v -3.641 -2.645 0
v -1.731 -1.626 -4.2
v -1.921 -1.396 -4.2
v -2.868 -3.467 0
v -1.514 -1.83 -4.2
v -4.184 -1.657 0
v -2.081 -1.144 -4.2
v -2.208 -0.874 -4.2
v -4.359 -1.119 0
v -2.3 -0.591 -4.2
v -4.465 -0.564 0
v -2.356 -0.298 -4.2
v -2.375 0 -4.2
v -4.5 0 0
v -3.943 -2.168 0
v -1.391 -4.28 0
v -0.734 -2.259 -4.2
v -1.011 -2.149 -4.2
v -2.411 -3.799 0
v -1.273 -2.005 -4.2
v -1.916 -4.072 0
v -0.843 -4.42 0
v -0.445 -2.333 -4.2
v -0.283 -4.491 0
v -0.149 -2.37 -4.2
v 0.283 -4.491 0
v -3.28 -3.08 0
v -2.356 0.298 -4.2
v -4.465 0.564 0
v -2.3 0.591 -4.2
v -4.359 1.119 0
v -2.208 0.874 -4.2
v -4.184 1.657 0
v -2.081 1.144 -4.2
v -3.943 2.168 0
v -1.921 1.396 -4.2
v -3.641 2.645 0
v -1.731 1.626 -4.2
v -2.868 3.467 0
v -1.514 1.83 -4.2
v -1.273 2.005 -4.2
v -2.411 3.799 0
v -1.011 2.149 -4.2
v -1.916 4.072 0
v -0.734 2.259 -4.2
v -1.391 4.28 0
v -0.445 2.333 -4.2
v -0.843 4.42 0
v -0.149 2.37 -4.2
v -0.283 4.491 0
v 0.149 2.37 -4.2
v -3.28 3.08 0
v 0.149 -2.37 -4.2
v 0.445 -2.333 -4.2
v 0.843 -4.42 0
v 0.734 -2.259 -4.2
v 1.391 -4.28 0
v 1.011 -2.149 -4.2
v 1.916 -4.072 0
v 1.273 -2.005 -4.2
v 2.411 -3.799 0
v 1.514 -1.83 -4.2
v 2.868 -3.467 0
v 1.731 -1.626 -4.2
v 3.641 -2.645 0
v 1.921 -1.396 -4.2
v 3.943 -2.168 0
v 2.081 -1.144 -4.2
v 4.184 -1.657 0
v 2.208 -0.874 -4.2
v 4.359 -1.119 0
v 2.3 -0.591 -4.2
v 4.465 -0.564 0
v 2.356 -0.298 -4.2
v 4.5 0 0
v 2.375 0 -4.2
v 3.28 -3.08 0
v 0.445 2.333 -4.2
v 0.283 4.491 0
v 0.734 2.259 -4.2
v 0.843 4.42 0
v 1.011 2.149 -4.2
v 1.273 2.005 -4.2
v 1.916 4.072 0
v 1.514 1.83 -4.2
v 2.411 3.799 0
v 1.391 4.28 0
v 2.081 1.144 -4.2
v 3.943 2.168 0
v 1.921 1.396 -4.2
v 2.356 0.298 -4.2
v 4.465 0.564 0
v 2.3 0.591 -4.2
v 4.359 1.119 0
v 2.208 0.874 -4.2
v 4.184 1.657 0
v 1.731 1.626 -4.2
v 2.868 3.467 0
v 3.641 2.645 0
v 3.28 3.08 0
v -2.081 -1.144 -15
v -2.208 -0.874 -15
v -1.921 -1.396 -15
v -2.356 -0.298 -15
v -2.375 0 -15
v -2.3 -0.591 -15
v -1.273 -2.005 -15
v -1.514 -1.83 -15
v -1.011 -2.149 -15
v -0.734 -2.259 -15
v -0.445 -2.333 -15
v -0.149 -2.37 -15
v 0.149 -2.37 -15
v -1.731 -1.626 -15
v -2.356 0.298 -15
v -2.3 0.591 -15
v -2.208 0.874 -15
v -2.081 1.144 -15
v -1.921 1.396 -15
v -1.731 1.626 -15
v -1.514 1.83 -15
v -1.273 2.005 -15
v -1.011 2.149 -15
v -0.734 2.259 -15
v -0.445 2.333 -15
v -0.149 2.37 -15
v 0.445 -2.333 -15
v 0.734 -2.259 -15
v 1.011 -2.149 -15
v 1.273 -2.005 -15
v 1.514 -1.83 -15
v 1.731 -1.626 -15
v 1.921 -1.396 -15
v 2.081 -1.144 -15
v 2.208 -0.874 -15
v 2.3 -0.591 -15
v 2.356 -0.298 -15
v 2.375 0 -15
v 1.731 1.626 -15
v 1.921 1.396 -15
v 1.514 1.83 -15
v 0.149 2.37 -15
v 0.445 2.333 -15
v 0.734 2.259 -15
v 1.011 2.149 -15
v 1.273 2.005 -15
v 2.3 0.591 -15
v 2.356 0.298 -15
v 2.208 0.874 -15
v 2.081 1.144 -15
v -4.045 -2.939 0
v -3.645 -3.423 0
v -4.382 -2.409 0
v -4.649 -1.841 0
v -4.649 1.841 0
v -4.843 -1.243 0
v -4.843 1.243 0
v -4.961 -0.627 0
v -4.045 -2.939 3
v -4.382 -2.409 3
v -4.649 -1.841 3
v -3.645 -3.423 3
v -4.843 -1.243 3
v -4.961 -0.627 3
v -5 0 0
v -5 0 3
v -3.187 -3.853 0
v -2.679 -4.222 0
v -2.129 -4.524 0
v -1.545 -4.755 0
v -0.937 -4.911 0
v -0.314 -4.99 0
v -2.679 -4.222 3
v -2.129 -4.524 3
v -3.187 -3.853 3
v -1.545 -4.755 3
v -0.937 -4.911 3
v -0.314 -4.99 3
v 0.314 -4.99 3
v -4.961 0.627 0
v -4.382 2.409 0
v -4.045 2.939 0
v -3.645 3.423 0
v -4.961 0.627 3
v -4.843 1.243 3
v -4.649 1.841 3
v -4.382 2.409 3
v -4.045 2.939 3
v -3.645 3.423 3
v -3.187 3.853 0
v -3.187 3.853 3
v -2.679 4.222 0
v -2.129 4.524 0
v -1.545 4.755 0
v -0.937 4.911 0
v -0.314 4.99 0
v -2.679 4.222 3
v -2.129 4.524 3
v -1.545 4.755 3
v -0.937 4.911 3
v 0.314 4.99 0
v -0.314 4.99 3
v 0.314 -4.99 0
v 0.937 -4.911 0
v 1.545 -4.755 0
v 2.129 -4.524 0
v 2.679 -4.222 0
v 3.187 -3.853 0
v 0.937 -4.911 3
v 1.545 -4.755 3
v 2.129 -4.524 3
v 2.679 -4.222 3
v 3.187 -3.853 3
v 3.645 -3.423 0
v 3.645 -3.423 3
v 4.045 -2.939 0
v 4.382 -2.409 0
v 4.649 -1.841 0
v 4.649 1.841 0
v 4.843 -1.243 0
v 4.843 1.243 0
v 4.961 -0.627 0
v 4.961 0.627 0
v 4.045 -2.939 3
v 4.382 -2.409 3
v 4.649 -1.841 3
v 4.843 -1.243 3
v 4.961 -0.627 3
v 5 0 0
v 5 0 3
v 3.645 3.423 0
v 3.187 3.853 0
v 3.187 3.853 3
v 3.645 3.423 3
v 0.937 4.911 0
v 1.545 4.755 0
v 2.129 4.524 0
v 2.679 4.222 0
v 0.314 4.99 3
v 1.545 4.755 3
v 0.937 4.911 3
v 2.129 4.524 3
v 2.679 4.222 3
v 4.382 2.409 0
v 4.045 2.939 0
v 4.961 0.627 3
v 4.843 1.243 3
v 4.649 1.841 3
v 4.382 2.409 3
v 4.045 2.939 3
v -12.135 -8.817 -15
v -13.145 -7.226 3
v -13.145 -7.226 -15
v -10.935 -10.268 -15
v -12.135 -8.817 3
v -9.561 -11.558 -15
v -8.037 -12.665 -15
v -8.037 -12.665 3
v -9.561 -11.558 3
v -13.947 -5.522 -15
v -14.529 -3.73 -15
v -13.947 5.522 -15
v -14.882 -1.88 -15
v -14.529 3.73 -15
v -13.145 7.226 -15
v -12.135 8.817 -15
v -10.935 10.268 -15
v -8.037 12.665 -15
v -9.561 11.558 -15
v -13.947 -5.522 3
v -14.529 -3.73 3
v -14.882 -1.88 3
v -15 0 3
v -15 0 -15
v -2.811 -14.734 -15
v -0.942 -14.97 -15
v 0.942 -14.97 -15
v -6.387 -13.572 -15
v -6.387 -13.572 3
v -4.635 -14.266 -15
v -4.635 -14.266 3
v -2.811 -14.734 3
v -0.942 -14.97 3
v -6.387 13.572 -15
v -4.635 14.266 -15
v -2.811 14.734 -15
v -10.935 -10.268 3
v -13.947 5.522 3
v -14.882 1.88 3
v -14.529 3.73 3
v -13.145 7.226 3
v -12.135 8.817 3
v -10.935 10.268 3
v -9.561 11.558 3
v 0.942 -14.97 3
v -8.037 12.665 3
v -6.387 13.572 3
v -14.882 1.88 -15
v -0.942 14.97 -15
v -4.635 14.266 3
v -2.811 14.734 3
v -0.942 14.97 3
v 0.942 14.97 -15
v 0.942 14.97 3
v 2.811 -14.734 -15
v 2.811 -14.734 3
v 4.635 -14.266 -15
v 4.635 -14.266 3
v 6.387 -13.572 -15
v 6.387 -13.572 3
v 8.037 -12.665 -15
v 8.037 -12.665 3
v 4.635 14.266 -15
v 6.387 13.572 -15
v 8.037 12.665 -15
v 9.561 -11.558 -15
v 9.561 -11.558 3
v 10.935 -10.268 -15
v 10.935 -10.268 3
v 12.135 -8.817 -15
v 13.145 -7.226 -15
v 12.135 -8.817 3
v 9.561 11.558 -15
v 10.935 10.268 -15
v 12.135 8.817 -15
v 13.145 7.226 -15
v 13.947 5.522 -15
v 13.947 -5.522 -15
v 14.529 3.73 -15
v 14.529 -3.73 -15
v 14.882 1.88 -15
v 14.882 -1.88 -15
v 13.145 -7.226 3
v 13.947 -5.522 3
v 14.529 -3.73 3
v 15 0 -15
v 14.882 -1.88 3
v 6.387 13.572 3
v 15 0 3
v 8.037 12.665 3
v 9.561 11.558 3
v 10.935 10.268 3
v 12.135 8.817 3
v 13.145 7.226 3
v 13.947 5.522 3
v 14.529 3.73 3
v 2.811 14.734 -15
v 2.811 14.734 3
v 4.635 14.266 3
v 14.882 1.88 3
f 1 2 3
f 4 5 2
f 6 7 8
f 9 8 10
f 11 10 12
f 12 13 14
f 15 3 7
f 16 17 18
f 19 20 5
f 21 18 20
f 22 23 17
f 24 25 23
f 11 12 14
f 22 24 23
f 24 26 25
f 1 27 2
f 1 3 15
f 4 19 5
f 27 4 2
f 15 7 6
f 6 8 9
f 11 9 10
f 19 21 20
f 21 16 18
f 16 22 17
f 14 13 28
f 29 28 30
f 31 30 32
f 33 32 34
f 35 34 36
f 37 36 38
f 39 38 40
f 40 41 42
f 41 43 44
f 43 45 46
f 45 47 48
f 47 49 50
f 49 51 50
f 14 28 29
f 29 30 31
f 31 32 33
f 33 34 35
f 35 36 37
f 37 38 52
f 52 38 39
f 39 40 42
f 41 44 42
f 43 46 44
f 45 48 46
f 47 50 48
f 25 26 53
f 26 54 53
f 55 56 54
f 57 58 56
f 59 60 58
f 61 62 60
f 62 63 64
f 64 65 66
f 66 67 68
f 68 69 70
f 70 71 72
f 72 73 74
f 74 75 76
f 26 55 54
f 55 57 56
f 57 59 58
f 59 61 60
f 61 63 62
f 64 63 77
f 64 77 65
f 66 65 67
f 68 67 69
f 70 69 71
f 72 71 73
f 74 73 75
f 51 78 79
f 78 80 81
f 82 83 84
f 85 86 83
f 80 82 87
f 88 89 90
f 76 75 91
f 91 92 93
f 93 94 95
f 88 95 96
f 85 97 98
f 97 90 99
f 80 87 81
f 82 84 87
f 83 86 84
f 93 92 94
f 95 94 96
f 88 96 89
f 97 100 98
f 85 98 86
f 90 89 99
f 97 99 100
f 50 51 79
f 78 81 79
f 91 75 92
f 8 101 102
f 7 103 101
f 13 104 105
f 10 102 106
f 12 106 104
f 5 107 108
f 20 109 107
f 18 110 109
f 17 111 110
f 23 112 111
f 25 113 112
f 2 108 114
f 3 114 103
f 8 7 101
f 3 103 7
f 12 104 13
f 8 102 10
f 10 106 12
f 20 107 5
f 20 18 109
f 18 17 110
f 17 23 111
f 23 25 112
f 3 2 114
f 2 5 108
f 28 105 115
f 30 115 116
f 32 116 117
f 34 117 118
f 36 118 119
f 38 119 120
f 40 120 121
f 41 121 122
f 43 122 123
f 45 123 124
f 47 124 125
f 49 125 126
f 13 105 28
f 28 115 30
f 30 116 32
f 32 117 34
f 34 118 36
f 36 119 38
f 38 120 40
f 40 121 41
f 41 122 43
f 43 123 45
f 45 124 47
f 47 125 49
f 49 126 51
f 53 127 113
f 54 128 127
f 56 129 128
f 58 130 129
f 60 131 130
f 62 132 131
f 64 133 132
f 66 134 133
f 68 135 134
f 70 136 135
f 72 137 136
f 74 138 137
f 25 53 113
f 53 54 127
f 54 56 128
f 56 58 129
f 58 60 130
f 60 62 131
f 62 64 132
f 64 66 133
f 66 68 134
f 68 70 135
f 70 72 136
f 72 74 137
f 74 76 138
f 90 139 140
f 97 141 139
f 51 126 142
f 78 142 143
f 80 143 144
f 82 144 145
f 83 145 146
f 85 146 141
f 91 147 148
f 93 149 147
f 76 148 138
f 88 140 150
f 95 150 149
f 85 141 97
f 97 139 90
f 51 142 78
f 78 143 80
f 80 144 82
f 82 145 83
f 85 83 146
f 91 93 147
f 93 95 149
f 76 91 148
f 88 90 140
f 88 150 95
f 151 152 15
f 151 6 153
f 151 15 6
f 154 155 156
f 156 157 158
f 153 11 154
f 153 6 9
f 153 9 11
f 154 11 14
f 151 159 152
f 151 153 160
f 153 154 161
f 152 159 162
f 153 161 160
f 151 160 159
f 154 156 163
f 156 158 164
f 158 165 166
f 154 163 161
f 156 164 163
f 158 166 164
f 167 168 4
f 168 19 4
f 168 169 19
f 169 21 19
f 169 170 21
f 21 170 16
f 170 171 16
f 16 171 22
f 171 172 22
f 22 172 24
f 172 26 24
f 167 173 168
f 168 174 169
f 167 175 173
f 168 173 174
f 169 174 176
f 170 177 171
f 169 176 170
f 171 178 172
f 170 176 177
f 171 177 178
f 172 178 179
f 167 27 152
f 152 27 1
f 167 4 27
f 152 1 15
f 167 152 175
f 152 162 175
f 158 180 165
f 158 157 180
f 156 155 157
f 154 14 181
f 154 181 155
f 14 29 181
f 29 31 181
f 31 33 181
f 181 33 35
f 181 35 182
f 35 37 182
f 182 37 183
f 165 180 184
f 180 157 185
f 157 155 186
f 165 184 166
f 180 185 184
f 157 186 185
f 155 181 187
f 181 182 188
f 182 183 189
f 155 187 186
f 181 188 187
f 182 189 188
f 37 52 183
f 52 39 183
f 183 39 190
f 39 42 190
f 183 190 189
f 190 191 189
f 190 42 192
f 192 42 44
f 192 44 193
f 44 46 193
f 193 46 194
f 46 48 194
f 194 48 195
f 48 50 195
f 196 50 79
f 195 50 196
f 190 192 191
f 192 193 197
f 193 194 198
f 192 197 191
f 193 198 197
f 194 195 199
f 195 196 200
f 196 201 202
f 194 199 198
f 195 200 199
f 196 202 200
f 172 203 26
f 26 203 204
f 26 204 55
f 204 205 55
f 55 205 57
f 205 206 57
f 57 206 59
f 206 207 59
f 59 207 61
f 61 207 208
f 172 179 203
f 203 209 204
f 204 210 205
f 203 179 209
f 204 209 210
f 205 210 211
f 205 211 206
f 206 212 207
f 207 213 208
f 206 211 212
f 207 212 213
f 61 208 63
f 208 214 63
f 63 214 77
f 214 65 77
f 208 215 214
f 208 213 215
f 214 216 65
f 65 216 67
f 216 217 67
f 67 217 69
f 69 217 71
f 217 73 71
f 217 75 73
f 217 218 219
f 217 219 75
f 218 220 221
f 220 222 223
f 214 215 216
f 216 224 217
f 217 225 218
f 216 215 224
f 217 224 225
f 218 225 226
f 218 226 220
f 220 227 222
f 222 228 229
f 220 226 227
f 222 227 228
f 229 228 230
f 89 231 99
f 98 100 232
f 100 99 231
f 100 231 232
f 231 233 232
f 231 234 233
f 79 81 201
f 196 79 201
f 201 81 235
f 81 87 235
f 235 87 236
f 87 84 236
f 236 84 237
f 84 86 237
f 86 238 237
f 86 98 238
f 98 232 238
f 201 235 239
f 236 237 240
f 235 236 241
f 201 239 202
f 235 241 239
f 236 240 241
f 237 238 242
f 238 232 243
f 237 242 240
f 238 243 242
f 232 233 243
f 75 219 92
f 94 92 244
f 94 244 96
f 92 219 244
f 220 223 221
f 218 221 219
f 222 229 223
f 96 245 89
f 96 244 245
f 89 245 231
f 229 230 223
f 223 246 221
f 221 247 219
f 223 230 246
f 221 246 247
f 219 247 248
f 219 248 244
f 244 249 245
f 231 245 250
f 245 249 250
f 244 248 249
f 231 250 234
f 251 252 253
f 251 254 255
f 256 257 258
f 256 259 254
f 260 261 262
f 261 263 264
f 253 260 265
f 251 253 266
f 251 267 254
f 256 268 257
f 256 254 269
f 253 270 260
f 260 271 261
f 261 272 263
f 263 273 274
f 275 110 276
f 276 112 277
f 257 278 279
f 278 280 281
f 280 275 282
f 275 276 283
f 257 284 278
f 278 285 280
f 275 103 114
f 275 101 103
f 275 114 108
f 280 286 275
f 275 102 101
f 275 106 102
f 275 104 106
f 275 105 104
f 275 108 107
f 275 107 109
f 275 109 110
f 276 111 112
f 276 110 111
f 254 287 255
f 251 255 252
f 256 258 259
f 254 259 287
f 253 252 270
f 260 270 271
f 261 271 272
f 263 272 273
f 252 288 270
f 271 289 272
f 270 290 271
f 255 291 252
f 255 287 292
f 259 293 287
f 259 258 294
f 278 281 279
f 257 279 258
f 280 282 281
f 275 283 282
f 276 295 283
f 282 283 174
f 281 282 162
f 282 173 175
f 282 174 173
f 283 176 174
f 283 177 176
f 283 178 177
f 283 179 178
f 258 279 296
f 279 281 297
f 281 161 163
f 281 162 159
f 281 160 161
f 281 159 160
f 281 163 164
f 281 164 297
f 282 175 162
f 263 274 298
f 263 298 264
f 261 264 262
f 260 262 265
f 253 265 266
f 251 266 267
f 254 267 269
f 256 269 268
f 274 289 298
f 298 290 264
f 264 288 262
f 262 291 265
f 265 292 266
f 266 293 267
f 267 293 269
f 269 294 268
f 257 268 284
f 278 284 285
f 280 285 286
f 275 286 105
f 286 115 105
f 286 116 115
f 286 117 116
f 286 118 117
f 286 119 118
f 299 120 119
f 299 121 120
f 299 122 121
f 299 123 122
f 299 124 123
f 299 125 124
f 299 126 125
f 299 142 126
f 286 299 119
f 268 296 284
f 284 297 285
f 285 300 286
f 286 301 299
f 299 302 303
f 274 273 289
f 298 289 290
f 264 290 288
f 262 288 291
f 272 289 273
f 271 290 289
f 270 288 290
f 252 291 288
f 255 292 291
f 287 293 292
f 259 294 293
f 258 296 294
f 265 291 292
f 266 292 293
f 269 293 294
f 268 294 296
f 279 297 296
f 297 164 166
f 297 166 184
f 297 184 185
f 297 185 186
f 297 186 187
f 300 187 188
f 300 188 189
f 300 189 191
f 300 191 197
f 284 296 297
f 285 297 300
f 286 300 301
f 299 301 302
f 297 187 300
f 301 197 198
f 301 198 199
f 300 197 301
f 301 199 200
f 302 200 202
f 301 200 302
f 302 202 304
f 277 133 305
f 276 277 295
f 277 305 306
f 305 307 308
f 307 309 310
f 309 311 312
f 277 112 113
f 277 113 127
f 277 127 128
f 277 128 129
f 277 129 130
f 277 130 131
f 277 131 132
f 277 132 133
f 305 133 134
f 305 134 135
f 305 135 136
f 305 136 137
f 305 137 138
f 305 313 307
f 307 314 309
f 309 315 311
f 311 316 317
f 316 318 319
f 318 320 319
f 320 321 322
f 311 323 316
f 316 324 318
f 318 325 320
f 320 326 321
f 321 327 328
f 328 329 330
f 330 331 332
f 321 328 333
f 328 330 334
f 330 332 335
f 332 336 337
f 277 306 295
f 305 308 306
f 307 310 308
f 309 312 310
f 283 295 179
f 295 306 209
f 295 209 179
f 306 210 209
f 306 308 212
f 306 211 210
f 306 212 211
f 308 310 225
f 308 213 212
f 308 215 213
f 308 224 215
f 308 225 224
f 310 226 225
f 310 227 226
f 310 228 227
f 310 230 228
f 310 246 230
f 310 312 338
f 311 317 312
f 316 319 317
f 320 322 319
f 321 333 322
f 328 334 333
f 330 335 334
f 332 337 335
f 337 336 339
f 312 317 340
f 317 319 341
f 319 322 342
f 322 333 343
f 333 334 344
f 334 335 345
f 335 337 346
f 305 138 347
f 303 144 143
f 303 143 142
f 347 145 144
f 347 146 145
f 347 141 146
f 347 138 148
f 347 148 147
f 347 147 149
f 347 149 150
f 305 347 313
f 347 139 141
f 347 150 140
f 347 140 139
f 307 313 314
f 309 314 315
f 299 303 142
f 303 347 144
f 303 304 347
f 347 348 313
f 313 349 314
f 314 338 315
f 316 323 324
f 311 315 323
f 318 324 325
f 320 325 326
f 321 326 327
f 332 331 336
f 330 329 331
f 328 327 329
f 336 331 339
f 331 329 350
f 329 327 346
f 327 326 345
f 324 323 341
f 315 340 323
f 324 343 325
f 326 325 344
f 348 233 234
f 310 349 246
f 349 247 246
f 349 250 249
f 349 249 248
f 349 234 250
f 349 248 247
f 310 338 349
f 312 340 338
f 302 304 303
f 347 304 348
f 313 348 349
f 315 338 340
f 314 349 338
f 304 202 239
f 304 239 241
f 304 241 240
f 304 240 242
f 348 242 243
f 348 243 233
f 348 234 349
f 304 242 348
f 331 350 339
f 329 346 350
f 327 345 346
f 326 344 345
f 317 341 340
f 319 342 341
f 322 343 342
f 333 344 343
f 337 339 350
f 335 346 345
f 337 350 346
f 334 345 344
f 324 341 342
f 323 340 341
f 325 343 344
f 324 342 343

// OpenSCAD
$fn = 50;

difference() {
	union() {
		translate(v = [0, 0, -15.0]) {
			cylinder(h = 18, r = 15.0);
		}
	}
	union() {
		translate(v = [0, 0, 0]) {
			rotate(a = [0, 0, 0]) {
				difference() {
					union() {
						translate(v = [0, 0, -18.0]) {
							cylinder(h = 18, r = 2.25);
						}
						translate(v = [0, 0, -4.2]) {
							cylinder(h = 4.2, r1 = 2.375, r2 = 4.5);
						}
						translate(v = [0, 0, -18.0]) {
							cylinder(h = 18, r = 2.375);
						}
						translate(v = [0, 0, -18.0]) {
							cylinder(h = 18, r = 2.25);
						}
					}
					union();
				}
			}
		}
		#cylinder(h = 3, r = 5.0);
	}
}
